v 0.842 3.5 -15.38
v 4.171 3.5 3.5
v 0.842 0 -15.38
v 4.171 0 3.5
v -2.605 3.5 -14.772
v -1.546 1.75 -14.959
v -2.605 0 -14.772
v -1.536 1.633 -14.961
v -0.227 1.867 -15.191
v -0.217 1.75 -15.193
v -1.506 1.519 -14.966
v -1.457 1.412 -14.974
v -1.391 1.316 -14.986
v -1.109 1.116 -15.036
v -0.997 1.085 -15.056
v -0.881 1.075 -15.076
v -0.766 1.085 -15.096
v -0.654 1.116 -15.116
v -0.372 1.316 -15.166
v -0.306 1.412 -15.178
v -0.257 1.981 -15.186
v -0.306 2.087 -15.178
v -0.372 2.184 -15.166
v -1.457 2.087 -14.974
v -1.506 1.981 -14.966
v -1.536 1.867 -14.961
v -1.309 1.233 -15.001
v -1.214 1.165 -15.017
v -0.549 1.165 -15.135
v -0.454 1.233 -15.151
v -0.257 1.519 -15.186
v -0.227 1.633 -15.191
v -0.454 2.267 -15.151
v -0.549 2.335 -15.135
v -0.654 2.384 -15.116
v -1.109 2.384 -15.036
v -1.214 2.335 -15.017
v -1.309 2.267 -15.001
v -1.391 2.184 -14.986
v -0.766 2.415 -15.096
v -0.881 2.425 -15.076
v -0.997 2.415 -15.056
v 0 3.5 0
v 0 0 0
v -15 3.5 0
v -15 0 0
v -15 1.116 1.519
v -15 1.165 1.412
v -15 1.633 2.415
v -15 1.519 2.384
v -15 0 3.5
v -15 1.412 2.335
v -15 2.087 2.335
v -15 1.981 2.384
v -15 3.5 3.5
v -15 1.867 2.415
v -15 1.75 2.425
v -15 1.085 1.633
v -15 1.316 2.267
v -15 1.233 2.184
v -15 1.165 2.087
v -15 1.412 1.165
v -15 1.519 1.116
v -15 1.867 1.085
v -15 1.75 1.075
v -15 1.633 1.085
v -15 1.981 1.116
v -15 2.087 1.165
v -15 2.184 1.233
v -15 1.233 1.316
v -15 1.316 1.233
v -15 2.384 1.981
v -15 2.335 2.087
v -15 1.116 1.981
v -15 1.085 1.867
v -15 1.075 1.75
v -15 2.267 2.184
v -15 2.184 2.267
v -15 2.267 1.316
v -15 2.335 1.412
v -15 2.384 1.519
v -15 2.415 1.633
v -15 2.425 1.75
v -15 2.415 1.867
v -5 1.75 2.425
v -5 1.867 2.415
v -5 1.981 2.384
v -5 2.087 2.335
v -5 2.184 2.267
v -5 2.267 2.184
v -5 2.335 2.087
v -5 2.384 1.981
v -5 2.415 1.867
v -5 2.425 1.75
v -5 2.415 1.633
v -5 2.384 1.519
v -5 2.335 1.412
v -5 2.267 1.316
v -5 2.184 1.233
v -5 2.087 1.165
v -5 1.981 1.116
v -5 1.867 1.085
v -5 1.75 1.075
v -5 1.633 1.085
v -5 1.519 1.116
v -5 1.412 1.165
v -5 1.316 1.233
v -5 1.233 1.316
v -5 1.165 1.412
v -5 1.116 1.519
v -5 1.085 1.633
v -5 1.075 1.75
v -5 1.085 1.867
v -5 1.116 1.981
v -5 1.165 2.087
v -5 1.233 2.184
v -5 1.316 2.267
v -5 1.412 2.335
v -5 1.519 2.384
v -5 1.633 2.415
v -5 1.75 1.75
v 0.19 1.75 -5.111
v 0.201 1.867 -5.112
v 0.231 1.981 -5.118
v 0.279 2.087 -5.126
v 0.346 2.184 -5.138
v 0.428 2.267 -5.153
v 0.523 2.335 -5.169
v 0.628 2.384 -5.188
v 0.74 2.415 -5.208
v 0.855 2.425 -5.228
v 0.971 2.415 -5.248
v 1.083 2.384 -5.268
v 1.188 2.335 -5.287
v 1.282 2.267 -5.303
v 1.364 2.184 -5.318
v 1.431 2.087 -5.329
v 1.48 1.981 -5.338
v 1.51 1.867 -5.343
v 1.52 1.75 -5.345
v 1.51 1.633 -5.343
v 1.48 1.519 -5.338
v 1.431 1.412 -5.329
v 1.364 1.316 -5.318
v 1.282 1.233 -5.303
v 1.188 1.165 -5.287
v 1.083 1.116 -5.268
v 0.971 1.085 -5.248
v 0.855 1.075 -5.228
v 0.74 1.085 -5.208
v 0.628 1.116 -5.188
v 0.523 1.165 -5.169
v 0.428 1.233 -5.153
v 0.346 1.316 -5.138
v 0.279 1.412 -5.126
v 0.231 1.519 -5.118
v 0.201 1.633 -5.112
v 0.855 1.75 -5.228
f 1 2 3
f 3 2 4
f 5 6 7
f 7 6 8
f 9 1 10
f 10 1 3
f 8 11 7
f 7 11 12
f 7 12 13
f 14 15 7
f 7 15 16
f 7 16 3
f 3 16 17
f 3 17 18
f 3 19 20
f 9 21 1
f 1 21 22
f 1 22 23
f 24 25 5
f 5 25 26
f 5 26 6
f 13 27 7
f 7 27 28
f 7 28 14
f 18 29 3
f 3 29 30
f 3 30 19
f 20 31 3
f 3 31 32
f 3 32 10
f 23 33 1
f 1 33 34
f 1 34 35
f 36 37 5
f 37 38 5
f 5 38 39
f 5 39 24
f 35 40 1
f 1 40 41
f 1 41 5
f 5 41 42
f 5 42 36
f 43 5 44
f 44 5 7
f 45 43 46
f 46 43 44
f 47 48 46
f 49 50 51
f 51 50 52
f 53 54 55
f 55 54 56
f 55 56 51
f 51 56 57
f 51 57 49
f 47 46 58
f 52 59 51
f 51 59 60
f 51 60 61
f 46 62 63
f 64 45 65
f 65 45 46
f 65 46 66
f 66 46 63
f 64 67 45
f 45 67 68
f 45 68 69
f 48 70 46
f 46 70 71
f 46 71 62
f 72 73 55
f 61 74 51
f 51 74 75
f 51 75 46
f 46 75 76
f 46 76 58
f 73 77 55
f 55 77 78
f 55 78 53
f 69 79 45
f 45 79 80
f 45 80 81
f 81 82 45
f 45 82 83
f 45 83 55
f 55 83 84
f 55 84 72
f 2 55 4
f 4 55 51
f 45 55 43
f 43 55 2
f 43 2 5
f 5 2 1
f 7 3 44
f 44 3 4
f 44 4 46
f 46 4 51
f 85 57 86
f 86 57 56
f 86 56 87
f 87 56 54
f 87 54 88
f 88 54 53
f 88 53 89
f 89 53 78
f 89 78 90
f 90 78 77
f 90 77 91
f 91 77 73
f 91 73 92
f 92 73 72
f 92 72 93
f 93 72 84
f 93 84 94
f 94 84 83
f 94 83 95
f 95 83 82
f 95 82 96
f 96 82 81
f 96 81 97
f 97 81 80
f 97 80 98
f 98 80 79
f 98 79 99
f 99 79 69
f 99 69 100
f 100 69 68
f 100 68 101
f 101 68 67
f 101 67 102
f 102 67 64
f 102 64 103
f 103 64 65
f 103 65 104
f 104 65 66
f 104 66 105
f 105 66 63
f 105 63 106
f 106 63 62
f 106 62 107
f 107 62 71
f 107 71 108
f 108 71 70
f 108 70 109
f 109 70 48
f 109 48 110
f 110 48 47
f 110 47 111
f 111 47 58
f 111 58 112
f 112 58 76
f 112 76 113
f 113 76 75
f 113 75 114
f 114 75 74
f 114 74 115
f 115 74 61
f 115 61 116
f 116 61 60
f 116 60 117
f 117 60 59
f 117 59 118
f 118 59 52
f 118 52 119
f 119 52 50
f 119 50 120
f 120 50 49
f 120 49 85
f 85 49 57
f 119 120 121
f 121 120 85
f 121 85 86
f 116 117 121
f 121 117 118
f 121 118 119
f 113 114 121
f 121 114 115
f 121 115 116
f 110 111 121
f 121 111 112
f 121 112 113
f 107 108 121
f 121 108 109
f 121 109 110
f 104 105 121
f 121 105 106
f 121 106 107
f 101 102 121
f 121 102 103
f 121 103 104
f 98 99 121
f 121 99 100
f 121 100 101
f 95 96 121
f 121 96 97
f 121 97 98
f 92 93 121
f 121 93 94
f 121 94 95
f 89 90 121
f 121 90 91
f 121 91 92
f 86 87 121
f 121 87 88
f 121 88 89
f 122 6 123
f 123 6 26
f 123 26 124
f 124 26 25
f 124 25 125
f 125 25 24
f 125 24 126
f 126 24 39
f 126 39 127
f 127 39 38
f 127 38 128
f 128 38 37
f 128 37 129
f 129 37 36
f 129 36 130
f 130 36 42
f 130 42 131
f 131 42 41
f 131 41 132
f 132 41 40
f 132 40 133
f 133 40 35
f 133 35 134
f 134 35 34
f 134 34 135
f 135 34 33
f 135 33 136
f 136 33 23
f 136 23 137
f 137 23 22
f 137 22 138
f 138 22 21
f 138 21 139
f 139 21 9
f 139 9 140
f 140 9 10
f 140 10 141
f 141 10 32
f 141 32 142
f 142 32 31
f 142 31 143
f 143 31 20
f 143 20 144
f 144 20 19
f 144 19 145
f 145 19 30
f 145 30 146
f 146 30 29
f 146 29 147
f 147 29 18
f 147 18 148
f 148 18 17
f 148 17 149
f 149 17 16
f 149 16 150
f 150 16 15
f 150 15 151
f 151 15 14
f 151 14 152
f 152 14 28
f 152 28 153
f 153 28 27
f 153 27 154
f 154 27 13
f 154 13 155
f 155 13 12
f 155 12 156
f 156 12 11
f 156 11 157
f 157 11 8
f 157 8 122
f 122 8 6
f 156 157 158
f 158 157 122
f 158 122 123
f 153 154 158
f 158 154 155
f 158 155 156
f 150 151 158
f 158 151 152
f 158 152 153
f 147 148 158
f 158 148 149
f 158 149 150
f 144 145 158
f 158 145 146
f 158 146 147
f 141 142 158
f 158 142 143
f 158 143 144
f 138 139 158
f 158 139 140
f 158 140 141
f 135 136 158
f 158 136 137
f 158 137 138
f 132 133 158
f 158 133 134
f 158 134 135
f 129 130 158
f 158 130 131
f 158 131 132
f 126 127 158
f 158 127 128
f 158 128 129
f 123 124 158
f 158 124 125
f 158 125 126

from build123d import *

# Parameters (mm, degrees)
BOSS_EXTRUDE1_DEPTH = 3.5
SKETCH3_R           = 0.675
CUT_EXTRUDE1_DEPTH  = 10
SKETCH4_R           = 0.675
CUT_EXTRUDE3_DEPTH  = 10


with BuildPart() as part:
    # Sketch2 → Boss-Extrude1 (new body)
    with BuildSketch(Plane(origin=(0, 0, 0), x_dir=(1, 0, 0), z_dir=(0, 1, 0))):
        Polygon((-2.604722665, 14.772116295), (0, 0), (-15, 0), (-15, -3.5), (4.171137574, -3.5), (0.842104471, 15.379884917), align=None)
    extrude(amount=BOSS_EXTRUDE1_DEPTH)

    # Sketch3 → Cut-Extrude1 (cut)
    with BuildSketch(Plane.ZY.offset(15)):
        with Locations((1.75, 1.75)):
            Circle(SKETCH3_R)
    extrude(amount=-CUT_EXTRUDE1_DEPTH, mode=Mode.SUBTRACT)

    # Sketch4 → Cut-Extrude3 (cut)
    with BuildSketch(Plane(origin=(-2.604722665, 0, -14.772116295), x_dir=(-0.9848077530122086, 0, 0.17364817766692825), z_dir=(-0.17364817766692825, 0, -0.9848077530122086))):
        with Locations((-1.75, 1.75)):
            Circle(SKETCH4_R)
    extrude(amount=-CUT_EXTRUDE3_DEPTH, mode=Mode.SUBTRACT)


solid = part.part
